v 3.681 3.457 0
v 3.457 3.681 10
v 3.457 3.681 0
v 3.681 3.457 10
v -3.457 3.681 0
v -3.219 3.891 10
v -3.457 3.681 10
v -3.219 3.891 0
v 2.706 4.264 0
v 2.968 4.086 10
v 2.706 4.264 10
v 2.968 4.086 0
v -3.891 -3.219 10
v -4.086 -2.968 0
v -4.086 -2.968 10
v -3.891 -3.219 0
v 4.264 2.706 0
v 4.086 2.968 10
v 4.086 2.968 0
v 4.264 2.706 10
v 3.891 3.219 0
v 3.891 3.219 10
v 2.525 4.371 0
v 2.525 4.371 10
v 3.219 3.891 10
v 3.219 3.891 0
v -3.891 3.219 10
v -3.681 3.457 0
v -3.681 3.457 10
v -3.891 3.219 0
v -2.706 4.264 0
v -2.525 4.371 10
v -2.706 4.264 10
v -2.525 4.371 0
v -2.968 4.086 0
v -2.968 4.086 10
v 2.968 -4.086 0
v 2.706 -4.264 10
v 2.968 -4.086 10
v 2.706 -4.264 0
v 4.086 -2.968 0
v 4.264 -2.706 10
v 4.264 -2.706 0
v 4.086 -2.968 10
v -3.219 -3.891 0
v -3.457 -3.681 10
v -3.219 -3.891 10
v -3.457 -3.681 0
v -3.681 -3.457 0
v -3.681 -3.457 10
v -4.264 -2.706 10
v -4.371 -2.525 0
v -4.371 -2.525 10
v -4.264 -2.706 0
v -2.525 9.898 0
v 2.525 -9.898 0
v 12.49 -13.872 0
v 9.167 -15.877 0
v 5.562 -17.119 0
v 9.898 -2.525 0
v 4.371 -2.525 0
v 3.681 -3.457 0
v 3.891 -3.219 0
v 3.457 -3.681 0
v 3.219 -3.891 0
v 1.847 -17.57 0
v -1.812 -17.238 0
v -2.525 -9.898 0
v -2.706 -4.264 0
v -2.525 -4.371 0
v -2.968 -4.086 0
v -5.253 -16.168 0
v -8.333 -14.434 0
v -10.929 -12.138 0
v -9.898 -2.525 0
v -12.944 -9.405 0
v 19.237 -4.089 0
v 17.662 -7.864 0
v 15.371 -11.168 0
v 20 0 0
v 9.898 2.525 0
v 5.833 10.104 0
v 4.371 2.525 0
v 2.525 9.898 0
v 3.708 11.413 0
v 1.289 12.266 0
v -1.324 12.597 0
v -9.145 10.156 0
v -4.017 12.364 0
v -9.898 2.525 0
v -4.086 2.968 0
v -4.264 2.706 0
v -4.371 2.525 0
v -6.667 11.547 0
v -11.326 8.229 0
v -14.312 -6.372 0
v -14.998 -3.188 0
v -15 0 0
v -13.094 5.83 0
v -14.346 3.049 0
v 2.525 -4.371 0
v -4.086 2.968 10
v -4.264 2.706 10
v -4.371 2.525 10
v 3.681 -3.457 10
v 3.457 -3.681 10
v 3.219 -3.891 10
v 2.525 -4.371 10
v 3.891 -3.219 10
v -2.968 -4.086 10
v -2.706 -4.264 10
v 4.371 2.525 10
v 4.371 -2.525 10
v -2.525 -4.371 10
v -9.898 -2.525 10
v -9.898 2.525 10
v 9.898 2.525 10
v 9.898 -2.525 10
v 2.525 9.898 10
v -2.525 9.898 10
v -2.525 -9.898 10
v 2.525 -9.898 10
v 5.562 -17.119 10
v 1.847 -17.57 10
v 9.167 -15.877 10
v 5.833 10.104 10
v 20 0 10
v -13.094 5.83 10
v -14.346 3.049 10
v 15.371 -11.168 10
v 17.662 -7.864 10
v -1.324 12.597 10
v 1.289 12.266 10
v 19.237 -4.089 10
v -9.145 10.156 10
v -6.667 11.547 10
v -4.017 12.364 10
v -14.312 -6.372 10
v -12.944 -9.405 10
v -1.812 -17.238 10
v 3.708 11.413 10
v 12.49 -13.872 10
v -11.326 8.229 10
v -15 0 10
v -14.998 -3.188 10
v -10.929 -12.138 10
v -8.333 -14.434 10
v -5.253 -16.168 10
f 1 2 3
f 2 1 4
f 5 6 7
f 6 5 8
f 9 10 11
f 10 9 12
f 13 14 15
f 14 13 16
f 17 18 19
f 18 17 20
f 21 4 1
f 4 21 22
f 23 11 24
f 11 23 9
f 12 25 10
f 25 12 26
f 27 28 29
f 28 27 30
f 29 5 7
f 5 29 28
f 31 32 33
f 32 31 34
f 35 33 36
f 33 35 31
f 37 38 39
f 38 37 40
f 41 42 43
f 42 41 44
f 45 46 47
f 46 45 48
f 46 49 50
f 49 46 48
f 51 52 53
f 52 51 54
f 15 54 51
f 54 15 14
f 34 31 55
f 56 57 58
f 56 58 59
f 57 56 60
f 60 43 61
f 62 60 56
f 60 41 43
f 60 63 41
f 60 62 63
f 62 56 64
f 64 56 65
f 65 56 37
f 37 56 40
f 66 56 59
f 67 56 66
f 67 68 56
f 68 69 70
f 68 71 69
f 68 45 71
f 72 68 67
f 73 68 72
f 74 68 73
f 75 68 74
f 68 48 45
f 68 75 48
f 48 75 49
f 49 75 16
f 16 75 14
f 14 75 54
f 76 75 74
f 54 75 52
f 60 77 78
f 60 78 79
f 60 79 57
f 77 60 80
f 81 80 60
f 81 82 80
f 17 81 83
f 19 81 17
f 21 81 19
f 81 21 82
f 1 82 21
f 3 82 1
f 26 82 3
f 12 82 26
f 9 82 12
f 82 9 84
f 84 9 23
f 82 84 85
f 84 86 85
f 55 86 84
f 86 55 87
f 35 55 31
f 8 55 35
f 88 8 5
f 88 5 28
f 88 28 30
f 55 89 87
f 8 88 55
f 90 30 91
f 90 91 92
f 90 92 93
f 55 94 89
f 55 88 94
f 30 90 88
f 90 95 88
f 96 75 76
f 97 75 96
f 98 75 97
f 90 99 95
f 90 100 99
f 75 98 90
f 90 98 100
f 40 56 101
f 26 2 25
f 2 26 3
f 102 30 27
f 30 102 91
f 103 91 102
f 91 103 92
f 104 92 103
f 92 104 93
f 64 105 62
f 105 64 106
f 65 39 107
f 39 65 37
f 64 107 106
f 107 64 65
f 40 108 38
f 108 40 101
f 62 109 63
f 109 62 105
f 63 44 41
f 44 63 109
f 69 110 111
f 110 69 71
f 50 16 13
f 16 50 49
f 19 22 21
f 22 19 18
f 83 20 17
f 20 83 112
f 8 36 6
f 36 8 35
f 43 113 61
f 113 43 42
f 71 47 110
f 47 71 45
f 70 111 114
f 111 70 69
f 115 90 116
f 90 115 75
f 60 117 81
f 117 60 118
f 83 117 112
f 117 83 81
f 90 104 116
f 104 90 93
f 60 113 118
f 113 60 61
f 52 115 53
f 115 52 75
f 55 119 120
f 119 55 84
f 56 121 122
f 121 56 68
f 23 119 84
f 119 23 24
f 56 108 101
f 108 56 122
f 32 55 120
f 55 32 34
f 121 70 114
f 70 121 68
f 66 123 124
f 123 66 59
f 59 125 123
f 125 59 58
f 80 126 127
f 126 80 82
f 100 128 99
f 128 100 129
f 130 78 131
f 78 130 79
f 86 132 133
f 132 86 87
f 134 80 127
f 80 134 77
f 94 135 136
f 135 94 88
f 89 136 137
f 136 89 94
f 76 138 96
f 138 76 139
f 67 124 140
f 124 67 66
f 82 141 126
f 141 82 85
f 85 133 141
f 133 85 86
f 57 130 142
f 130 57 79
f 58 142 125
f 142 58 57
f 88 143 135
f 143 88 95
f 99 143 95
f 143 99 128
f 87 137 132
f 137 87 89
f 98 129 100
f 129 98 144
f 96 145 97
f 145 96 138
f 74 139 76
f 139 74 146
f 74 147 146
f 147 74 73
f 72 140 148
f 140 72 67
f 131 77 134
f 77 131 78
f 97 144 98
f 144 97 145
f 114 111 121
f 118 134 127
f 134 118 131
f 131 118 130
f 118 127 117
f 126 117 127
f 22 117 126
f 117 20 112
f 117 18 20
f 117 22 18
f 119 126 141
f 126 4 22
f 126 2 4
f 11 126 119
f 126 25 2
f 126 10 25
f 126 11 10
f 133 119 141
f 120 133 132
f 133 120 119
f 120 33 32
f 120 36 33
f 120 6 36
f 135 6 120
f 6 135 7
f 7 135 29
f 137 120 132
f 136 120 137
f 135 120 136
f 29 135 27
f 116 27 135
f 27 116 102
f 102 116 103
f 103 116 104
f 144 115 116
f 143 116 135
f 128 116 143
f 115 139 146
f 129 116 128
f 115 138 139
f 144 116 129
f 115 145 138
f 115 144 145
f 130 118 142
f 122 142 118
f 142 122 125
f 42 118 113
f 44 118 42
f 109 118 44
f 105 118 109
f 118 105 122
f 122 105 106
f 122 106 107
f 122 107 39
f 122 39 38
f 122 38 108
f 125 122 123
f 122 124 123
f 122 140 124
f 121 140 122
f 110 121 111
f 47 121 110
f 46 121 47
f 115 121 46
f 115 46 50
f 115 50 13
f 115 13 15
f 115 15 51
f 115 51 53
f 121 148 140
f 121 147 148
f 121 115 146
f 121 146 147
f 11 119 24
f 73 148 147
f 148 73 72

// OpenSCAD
// file: lib/dogs.scad
$fn=100;


dogblock = [20,20,10];
//dog(dogblock, type="small");
//dog(dogblock, type="large");
//cornerdog(dogblock, type="small");
//cornerdog(dogblock, type="large");
//handle(dogblock[2], "small");
//handle(dogblock[2], "large");
//pressureplate(dogblock[2]);

//pressurespiral(5, 10, 15);
//pressurespiral2(dogblock[2], 10, 15);
//turnkeyspiral(dogblock[2],"large", 20, 10); //biggest one that can fit on the sides
//turnkeyspiral(dogblock[2],"large", 60, 30);
//turnkeyspiral(dogblock[2],"large", 40, 15);
//spiralhandle();

//turnkey (dogblock[2]*2, "small");
//turnkey (dogblock[2]*2, "large");


module spiralhandle() {
    height=5;
    difference() {
        hull() {
            cylinder(height, 15, 15);
            translate([55,0,0]) cylinder(height,d=15);
        }
        // scale it one percent so the key will certainly fit
        rotate([0,0,45]) scale([1.01,1.01,1.01]) turnkey(height, "large"); 
    }
    
}
//Handle to clamp the stock
//the outer circle isn't concentric to the center one (in the hole)
//by turning it we put pressure on the material. Due to friction it
//stays in place
//Turn them upside down and you can use them as a wedge to lock the
//stock in place.
//Todo:  must have the geometry wrong, as the pressure functionality
//doesn't work yet.  It can be used as a wedge though.
module handle(h, type) {
  //we use half of the height to allow the use of "pressure" plates
  //to offer more flexibility
    
    //we don't use the half height to avoid friction when turning the handle
    height = h*0.48; 
    
    dogcyl(h, type);
    hull() {
        cylinder(height, 15, 15);
        translate([55,0,0]) cylinder(height,d=15);
    }
    //cylinder on the back to keep it flat on the bed
    translate([55,0,0]) cylinder(h,d=15);
    
    platediameter = dogdiameter(type);
    shift = dogdiameter("large")-platediameter;
    //cylinder to use pressure plate
    //depending on the size we need to shift it a bit
    //we won't make two types of pressure plates
    translate([0,-shift,0]) cylinder(h,d=dogdiameter("large")*2);
    //the line above should be a spiral
}

//We want to create a spiral, that with an equal amount of turning the
//presure increases equallly
//As such, for every degree turned, the pressure point should increase with
//the same distance
module pressurespiral(h, mind, maxd) {
    cyld = 1;
    travel = maxd-mind;
    degrees = 360;
    steps = 60;
    stepinc = degrees/steps;
    steptravel = travel/(steps*stepinc);
    
    
    for(i = [0:stepinc:degrees]) {
        rotate([0,0,i]) translate([mind-cyld/2+i*steptravel,0,0])
            cylinder(h,d=cyld);
    }
}

//improved pressurespiral using polygon (more efficient to generate)
module pressurespiral2(h, mind, maxd) {
    cyld = 1;
    travel = maxd-mind;
    degrees = 360;
    steps = 30; //deliberately not too much steps to provide enough friction
    stepinc = degrees/steps;
    steptravel = travel/(steps*stepinc);

    points=[
        for(i = [0:stepinc:degrees])
            [
                (mind+i*steptravel) * cos(i),
                (mind+i*steptravel) * sin(i)
            ]
    ];
    
    //add the hull as the space it fills up anyway, and the extra volume
    //should provide some extra strength
    hull()
        linear_extrude(h) polygon(points);
}


module turnkeyspiral (h, type, maxd, mind) {
    
    keywidth = 5;
    keylength = 2*mind;
    difference() {
        pressurespiral2(h, mind, maxd);
        // scale it one percent so the key will certainly fit
        scale([1.01,1.01,1.01]) turnkey (h, type); 
    }
}

module turnkey (h, type) {
    maxd = 2*dogdiameter("large")*0.99; // slightly reduce to make sure it fits the plate well
    mind = maxd - 10;
    keywidth = 5;
    keylength = 2*mind;
        translate([0,-dogdiameter(type)/2,0]) dogcyl(h,type);
        translate([-keylength/2,-keywidth/2,0]) cube([keylength,keywidth,h]);
        rotate([0,0,90]) translate([-keylength/2,-keywidth/2,0]) cube([keylength,keywidth,h]);
   
}

module pressureplate(h) {
    //we don't use the half height to avoid friction when turning the handle
    height = h*0.48;
    dia = dogdiameter("large");
    difference() {
        cube([40,50,height]);
        translate([dia+5, dia+10,0]) cylinder(h,d=dia*2+1); //1mm larger to allow to turn
    }
}



//dog with 90 degree corner section
module cornerdog(s, type) {
    difference() {
        union() {
            half=[s[0]/2,s[1],s[2]];
            translate([-3,0,0]) finnedblock(s);
            translate([0,-s[1]+3,0]) rotate([0,0,90]) finnedblock(s);
            rotate([0,0,45]) translate([-half[0]/2,0,0]) finnedblock(half);
            d = dogdiameter (type);
            translate([-d/2,0,0]) dogcyl(s[2],type);
            
        }
        cylinder(s[2],2,2);
        translate([0,0,s[2]]) sphere(r=2);
    }
}


//complete dog with finned block and dogcylinder
module dog(s, type) {
    finnedblock(s);
    translate([s[0]/2,0]) {
        dogcyl(s[2], type);
    }    
}

//finned block to save some material when printing
module finnedblock(s,finwidth=3, findepthratio=0.7) {
    x=s[0];
    y=s[1];
    z=s[2];
    cube([x,y*(1-findepthratio),z]);
    
    //optimize by creating fins to reduce material
    //there are always an uneven number of fins; always a fin at the ends
    fincount = ceil((x/finwidth)/2);
    fingap = (x - fincount*finwidth)/(fincount-1);
    findepth = findepthratio*y;

    for(i=[0:fincount-1]) {
        translate([i*(fingap+finwidth),y-findepth,0]) {
        cube([finwidth, findepth, z], center=false);
        }
    }    
}

//cylinder to match the holes in the snapmaker wasteboard
//possible for both the large holes (used for the clamps)
//and small holes used for screwing the wasteboard to the bed
module dogcyl(h, type) {
    //OpenScad doesn't have real variables, so we can assign oonly once
    cyldiameter = dogdiameter(type);
    cylheight   = h + dogheight(type);
    cylminidiameter
                = dogminidiameter(type);
    cylminiheight
                = dogminiheight(type);
    
    translate([0,cyldiameter/2,0]) {
        cylinder(h=cylheight,d=cyldiameter);
        translate([0,0,cylheight]) {
            cylinder(h=cylminiheight,d=cylminidiameter);
        }
    }
}


//parameters to fill in
//depth and diameter of large holes
largedepth = 3.75;
largediameter = 10.00;
//and the minipart
largeminidepth = 2.50;
largeminidiameter = 3.00;

//depth and diameter of small holes
smalldepth = 3.85;
smalldiameter = 8.00;
//amd the minipart
smallminidepth=1.50;
smallminidiameter=2.40;

//OpenScad doesn't have real variables, so we can assign oonly once
//So we define some conenience functions to get the value we need for
//the parameters
//For an unknow type we return 0.  Some kind of exception might be better
function dogdiameter (type) =   type=="large" ? largediameter : 
                                type=="small" ? smalldiameter :
                                0;
function dogheight (type)   =   type=="large" ? largedepth : 
                                type=="small" ? smalldepth :
                                0;
function dogminidiameter (type)
                            =   type=="large" ? largeminidiameter : 
                                type=="small" ? smallminidiameter :
                                0;
function dogminiheight (type)
                            =   type=="large" ? largeminidepth : 
                                type=="small" ? smallminidepth :
                                0;
// main file
include <lib/dogs.scad>

turnkeyspiral(dogblock[2],"large", 20, 10);
